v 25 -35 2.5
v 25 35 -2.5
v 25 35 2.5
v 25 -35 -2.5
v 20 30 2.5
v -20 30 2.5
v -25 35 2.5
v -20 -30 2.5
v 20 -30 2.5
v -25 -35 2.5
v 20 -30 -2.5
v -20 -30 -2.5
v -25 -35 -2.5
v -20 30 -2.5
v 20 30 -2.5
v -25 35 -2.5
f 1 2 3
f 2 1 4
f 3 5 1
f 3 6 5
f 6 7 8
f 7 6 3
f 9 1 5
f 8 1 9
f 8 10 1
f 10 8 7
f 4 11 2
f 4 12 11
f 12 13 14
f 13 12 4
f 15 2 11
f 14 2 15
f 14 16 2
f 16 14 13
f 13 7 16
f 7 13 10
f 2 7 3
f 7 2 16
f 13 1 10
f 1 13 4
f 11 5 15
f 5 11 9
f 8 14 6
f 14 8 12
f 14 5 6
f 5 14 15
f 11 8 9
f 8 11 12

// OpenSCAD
difference() {
    cube([50,70,5],center=true);
    cube([40,60,20],center=true);
}
